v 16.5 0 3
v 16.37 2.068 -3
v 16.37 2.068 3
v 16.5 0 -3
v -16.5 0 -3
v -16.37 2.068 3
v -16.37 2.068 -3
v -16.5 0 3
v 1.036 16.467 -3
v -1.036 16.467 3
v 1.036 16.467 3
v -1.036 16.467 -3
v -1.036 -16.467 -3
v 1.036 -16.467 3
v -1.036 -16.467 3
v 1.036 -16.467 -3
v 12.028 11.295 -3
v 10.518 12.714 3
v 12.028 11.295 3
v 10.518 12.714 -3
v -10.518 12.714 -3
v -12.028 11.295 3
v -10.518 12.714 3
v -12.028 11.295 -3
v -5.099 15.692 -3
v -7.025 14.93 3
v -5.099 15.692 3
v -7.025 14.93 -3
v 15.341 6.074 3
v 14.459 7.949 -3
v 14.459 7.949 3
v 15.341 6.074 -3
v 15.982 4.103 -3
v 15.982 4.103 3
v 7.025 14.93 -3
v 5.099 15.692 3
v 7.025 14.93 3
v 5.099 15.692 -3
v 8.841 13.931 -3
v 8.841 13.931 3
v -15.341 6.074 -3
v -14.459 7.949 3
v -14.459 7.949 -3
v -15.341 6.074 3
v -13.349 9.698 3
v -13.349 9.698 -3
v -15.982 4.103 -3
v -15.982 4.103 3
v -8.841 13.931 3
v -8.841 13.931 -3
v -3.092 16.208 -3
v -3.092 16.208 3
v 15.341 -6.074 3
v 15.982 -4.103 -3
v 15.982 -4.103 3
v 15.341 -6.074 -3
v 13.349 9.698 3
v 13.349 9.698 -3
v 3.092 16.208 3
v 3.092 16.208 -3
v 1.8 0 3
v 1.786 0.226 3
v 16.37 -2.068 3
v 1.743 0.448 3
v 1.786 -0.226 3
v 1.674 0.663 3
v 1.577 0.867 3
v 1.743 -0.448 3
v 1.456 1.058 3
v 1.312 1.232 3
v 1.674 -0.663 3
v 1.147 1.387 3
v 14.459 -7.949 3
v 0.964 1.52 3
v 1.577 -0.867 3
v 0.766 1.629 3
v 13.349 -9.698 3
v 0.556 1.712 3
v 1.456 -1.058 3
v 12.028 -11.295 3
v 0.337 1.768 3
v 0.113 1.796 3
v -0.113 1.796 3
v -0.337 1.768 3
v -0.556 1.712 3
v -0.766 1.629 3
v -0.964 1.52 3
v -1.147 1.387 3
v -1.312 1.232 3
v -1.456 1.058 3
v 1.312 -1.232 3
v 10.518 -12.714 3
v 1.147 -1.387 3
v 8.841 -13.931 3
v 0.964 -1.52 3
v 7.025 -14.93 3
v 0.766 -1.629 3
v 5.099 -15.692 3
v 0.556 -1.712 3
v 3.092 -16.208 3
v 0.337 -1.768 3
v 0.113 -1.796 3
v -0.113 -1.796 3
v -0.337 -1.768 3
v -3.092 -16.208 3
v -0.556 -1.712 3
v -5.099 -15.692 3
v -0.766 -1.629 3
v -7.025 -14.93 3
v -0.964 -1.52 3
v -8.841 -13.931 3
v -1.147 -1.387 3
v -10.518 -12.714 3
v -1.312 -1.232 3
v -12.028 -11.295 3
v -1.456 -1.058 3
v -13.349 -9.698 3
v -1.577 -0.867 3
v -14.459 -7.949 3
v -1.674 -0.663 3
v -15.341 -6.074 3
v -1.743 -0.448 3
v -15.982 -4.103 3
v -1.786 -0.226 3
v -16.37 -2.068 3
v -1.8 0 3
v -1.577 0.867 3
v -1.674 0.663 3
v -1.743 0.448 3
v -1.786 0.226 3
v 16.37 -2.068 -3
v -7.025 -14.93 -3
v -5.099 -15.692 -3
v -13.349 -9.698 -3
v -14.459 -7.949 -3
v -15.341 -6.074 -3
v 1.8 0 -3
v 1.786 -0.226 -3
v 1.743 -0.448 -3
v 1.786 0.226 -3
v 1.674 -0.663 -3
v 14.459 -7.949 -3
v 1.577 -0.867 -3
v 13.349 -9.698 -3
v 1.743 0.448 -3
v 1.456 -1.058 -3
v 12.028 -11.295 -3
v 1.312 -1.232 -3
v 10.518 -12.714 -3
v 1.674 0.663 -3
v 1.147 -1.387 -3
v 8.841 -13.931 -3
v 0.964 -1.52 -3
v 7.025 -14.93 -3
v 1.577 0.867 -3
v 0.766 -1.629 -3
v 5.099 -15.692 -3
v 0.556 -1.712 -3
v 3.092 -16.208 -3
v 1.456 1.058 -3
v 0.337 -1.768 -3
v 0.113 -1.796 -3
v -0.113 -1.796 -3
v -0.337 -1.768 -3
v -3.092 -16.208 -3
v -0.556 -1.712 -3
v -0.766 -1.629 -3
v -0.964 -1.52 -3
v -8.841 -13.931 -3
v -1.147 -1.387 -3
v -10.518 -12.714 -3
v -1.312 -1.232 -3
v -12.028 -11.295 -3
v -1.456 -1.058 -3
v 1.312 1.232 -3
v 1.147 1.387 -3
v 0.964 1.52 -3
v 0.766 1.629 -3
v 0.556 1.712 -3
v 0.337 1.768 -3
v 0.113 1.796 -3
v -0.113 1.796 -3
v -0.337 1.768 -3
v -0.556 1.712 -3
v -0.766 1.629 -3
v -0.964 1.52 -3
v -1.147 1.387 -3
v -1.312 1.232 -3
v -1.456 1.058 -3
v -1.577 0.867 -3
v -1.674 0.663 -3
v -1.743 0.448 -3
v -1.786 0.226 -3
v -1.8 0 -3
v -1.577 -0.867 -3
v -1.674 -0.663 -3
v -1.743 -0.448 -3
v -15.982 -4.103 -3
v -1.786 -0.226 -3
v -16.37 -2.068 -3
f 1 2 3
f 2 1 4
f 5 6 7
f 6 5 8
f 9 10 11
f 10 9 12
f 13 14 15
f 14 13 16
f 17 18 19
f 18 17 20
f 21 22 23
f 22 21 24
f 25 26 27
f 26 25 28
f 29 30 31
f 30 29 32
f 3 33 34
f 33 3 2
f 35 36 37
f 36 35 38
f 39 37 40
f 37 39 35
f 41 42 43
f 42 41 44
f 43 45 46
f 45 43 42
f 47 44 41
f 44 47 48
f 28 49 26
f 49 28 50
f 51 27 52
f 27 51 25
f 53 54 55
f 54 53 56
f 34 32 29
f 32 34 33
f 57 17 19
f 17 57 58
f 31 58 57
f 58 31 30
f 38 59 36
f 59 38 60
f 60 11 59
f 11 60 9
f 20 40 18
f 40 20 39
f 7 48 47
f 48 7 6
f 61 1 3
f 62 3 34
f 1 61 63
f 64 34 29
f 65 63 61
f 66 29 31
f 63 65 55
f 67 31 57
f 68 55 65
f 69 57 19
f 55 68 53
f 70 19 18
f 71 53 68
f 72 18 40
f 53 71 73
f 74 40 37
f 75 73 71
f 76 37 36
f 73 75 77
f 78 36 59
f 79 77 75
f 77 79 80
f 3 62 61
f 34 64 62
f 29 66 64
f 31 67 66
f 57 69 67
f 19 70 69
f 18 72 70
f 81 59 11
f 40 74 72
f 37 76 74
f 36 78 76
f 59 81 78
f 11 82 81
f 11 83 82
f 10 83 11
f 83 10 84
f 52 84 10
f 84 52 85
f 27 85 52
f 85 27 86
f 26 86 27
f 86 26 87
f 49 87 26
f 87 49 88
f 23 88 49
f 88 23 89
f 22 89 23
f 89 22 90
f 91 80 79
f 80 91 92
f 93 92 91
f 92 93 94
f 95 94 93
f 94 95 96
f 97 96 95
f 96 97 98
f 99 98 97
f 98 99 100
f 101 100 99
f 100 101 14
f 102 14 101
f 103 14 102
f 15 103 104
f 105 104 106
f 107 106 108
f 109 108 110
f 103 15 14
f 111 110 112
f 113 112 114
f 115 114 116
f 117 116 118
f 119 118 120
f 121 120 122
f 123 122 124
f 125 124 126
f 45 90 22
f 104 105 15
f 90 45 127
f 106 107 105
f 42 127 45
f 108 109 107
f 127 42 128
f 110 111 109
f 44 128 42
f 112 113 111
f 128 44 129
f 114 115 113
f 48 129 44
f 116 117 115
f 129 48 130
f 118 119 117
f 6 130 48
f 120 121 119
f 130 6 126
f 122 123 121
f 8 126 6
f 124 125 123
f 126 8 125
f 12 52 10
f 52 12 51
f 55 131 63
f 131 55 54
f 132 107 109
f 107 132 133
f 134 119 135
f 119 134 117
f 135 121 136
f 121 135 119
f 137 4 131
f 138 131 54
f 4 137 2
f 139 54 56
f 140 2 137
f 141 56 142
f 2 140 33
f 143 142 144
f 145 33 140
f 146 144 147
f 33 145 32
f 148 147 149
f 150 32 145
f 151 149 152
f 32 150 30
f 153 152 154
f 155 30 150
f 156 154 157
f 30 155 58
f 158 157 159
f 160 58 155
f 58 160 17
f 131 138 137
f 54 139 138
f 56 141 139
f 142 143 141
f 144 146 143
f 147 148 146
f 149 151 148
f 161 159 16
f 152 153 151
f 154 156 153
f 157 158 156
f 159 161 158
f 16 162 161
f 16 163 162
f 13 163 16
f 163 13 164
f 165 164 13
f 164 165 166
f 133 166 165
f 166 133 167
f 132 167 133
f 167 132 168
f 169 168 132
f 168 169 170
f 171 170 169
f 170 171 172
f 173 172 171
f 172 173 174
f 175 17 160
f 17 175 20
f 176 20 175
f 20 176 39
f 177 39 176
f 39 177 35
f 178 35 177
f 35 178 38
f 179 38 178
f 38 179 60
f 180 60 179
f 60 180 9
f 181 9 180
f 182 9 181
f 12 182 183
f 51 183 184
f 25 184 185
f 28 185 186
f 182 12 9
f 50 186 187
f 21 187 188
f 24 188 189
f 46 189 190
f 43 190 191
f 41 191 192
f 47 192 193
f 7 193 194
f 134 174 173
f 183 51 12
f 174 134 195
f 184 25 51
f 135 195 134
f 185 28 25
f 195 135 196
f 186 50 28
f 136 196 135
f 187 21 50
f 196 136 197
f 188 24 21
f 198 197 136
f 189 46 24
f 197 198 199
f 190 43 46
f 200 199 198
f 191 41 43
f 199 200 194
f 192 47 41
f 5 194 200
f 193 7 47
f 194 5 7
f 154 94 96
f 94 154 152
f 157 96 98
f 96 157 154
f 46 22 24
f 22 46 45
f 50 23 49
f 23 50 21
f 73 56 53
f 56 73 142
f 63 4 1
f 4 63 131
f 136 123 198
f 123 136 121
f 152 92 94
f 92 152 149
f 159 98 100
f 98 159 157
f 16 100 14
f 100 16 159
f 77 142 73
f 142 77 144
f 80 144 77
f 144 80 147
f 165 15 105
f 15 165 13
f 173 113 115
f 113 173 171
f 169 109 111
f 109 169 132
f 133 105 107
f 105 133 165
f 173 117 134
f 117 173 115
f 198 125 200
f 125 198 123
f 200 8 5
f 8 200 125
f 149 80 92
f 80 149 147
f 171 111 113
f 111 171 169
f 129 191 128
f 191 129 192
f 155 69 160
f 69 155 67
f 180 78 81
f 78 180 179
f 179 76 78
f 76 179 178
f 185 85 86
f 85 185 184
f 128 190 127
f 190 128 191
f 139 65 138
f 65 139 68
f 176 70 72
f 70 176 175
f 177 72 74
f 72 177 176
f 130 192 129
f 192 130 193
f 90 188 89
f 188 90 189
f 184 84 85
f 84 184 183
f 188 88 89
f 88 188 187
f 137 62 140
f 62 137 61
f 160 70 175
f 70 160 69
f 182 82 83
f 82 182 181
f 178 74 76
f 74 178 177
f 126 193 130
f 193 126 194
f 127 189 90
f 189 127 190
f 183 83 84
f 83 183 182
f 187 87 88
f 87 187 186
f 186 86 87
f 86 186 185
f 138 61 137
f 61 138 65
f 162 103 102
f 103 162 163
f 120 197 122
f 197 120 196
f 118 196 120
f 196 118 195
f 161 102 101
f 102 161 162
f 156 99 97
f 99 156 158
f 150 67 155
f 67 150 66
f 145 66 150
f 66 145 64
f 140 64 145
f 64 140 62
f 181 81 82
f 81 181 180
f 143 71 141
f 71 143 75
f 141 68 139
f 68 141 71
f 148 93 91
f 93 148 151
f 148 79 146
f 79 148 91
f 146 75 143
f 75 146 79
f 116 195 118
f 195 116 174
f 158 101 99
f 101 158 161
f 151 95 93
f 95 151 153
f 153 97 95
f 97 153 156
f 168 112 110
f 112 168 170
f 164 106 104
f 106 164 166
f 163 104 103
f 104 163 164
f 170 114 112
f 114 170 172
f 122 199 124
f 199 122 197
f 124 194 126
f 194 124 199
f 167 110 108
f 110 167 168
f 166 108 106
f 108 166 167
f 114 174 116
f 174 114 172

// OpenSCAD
$fn = 50;


difference() {
	union() {
		translate(v = [0, 0, -3.0000000000]) {
			cylinder(h = 6, r = 16.5000000000);
		}
	}
	union() {
		translate(v = [0, 0, -100.0000000000]) {
			cylinder(h = 200, r = 1.8000000000);
		}
	}
}
